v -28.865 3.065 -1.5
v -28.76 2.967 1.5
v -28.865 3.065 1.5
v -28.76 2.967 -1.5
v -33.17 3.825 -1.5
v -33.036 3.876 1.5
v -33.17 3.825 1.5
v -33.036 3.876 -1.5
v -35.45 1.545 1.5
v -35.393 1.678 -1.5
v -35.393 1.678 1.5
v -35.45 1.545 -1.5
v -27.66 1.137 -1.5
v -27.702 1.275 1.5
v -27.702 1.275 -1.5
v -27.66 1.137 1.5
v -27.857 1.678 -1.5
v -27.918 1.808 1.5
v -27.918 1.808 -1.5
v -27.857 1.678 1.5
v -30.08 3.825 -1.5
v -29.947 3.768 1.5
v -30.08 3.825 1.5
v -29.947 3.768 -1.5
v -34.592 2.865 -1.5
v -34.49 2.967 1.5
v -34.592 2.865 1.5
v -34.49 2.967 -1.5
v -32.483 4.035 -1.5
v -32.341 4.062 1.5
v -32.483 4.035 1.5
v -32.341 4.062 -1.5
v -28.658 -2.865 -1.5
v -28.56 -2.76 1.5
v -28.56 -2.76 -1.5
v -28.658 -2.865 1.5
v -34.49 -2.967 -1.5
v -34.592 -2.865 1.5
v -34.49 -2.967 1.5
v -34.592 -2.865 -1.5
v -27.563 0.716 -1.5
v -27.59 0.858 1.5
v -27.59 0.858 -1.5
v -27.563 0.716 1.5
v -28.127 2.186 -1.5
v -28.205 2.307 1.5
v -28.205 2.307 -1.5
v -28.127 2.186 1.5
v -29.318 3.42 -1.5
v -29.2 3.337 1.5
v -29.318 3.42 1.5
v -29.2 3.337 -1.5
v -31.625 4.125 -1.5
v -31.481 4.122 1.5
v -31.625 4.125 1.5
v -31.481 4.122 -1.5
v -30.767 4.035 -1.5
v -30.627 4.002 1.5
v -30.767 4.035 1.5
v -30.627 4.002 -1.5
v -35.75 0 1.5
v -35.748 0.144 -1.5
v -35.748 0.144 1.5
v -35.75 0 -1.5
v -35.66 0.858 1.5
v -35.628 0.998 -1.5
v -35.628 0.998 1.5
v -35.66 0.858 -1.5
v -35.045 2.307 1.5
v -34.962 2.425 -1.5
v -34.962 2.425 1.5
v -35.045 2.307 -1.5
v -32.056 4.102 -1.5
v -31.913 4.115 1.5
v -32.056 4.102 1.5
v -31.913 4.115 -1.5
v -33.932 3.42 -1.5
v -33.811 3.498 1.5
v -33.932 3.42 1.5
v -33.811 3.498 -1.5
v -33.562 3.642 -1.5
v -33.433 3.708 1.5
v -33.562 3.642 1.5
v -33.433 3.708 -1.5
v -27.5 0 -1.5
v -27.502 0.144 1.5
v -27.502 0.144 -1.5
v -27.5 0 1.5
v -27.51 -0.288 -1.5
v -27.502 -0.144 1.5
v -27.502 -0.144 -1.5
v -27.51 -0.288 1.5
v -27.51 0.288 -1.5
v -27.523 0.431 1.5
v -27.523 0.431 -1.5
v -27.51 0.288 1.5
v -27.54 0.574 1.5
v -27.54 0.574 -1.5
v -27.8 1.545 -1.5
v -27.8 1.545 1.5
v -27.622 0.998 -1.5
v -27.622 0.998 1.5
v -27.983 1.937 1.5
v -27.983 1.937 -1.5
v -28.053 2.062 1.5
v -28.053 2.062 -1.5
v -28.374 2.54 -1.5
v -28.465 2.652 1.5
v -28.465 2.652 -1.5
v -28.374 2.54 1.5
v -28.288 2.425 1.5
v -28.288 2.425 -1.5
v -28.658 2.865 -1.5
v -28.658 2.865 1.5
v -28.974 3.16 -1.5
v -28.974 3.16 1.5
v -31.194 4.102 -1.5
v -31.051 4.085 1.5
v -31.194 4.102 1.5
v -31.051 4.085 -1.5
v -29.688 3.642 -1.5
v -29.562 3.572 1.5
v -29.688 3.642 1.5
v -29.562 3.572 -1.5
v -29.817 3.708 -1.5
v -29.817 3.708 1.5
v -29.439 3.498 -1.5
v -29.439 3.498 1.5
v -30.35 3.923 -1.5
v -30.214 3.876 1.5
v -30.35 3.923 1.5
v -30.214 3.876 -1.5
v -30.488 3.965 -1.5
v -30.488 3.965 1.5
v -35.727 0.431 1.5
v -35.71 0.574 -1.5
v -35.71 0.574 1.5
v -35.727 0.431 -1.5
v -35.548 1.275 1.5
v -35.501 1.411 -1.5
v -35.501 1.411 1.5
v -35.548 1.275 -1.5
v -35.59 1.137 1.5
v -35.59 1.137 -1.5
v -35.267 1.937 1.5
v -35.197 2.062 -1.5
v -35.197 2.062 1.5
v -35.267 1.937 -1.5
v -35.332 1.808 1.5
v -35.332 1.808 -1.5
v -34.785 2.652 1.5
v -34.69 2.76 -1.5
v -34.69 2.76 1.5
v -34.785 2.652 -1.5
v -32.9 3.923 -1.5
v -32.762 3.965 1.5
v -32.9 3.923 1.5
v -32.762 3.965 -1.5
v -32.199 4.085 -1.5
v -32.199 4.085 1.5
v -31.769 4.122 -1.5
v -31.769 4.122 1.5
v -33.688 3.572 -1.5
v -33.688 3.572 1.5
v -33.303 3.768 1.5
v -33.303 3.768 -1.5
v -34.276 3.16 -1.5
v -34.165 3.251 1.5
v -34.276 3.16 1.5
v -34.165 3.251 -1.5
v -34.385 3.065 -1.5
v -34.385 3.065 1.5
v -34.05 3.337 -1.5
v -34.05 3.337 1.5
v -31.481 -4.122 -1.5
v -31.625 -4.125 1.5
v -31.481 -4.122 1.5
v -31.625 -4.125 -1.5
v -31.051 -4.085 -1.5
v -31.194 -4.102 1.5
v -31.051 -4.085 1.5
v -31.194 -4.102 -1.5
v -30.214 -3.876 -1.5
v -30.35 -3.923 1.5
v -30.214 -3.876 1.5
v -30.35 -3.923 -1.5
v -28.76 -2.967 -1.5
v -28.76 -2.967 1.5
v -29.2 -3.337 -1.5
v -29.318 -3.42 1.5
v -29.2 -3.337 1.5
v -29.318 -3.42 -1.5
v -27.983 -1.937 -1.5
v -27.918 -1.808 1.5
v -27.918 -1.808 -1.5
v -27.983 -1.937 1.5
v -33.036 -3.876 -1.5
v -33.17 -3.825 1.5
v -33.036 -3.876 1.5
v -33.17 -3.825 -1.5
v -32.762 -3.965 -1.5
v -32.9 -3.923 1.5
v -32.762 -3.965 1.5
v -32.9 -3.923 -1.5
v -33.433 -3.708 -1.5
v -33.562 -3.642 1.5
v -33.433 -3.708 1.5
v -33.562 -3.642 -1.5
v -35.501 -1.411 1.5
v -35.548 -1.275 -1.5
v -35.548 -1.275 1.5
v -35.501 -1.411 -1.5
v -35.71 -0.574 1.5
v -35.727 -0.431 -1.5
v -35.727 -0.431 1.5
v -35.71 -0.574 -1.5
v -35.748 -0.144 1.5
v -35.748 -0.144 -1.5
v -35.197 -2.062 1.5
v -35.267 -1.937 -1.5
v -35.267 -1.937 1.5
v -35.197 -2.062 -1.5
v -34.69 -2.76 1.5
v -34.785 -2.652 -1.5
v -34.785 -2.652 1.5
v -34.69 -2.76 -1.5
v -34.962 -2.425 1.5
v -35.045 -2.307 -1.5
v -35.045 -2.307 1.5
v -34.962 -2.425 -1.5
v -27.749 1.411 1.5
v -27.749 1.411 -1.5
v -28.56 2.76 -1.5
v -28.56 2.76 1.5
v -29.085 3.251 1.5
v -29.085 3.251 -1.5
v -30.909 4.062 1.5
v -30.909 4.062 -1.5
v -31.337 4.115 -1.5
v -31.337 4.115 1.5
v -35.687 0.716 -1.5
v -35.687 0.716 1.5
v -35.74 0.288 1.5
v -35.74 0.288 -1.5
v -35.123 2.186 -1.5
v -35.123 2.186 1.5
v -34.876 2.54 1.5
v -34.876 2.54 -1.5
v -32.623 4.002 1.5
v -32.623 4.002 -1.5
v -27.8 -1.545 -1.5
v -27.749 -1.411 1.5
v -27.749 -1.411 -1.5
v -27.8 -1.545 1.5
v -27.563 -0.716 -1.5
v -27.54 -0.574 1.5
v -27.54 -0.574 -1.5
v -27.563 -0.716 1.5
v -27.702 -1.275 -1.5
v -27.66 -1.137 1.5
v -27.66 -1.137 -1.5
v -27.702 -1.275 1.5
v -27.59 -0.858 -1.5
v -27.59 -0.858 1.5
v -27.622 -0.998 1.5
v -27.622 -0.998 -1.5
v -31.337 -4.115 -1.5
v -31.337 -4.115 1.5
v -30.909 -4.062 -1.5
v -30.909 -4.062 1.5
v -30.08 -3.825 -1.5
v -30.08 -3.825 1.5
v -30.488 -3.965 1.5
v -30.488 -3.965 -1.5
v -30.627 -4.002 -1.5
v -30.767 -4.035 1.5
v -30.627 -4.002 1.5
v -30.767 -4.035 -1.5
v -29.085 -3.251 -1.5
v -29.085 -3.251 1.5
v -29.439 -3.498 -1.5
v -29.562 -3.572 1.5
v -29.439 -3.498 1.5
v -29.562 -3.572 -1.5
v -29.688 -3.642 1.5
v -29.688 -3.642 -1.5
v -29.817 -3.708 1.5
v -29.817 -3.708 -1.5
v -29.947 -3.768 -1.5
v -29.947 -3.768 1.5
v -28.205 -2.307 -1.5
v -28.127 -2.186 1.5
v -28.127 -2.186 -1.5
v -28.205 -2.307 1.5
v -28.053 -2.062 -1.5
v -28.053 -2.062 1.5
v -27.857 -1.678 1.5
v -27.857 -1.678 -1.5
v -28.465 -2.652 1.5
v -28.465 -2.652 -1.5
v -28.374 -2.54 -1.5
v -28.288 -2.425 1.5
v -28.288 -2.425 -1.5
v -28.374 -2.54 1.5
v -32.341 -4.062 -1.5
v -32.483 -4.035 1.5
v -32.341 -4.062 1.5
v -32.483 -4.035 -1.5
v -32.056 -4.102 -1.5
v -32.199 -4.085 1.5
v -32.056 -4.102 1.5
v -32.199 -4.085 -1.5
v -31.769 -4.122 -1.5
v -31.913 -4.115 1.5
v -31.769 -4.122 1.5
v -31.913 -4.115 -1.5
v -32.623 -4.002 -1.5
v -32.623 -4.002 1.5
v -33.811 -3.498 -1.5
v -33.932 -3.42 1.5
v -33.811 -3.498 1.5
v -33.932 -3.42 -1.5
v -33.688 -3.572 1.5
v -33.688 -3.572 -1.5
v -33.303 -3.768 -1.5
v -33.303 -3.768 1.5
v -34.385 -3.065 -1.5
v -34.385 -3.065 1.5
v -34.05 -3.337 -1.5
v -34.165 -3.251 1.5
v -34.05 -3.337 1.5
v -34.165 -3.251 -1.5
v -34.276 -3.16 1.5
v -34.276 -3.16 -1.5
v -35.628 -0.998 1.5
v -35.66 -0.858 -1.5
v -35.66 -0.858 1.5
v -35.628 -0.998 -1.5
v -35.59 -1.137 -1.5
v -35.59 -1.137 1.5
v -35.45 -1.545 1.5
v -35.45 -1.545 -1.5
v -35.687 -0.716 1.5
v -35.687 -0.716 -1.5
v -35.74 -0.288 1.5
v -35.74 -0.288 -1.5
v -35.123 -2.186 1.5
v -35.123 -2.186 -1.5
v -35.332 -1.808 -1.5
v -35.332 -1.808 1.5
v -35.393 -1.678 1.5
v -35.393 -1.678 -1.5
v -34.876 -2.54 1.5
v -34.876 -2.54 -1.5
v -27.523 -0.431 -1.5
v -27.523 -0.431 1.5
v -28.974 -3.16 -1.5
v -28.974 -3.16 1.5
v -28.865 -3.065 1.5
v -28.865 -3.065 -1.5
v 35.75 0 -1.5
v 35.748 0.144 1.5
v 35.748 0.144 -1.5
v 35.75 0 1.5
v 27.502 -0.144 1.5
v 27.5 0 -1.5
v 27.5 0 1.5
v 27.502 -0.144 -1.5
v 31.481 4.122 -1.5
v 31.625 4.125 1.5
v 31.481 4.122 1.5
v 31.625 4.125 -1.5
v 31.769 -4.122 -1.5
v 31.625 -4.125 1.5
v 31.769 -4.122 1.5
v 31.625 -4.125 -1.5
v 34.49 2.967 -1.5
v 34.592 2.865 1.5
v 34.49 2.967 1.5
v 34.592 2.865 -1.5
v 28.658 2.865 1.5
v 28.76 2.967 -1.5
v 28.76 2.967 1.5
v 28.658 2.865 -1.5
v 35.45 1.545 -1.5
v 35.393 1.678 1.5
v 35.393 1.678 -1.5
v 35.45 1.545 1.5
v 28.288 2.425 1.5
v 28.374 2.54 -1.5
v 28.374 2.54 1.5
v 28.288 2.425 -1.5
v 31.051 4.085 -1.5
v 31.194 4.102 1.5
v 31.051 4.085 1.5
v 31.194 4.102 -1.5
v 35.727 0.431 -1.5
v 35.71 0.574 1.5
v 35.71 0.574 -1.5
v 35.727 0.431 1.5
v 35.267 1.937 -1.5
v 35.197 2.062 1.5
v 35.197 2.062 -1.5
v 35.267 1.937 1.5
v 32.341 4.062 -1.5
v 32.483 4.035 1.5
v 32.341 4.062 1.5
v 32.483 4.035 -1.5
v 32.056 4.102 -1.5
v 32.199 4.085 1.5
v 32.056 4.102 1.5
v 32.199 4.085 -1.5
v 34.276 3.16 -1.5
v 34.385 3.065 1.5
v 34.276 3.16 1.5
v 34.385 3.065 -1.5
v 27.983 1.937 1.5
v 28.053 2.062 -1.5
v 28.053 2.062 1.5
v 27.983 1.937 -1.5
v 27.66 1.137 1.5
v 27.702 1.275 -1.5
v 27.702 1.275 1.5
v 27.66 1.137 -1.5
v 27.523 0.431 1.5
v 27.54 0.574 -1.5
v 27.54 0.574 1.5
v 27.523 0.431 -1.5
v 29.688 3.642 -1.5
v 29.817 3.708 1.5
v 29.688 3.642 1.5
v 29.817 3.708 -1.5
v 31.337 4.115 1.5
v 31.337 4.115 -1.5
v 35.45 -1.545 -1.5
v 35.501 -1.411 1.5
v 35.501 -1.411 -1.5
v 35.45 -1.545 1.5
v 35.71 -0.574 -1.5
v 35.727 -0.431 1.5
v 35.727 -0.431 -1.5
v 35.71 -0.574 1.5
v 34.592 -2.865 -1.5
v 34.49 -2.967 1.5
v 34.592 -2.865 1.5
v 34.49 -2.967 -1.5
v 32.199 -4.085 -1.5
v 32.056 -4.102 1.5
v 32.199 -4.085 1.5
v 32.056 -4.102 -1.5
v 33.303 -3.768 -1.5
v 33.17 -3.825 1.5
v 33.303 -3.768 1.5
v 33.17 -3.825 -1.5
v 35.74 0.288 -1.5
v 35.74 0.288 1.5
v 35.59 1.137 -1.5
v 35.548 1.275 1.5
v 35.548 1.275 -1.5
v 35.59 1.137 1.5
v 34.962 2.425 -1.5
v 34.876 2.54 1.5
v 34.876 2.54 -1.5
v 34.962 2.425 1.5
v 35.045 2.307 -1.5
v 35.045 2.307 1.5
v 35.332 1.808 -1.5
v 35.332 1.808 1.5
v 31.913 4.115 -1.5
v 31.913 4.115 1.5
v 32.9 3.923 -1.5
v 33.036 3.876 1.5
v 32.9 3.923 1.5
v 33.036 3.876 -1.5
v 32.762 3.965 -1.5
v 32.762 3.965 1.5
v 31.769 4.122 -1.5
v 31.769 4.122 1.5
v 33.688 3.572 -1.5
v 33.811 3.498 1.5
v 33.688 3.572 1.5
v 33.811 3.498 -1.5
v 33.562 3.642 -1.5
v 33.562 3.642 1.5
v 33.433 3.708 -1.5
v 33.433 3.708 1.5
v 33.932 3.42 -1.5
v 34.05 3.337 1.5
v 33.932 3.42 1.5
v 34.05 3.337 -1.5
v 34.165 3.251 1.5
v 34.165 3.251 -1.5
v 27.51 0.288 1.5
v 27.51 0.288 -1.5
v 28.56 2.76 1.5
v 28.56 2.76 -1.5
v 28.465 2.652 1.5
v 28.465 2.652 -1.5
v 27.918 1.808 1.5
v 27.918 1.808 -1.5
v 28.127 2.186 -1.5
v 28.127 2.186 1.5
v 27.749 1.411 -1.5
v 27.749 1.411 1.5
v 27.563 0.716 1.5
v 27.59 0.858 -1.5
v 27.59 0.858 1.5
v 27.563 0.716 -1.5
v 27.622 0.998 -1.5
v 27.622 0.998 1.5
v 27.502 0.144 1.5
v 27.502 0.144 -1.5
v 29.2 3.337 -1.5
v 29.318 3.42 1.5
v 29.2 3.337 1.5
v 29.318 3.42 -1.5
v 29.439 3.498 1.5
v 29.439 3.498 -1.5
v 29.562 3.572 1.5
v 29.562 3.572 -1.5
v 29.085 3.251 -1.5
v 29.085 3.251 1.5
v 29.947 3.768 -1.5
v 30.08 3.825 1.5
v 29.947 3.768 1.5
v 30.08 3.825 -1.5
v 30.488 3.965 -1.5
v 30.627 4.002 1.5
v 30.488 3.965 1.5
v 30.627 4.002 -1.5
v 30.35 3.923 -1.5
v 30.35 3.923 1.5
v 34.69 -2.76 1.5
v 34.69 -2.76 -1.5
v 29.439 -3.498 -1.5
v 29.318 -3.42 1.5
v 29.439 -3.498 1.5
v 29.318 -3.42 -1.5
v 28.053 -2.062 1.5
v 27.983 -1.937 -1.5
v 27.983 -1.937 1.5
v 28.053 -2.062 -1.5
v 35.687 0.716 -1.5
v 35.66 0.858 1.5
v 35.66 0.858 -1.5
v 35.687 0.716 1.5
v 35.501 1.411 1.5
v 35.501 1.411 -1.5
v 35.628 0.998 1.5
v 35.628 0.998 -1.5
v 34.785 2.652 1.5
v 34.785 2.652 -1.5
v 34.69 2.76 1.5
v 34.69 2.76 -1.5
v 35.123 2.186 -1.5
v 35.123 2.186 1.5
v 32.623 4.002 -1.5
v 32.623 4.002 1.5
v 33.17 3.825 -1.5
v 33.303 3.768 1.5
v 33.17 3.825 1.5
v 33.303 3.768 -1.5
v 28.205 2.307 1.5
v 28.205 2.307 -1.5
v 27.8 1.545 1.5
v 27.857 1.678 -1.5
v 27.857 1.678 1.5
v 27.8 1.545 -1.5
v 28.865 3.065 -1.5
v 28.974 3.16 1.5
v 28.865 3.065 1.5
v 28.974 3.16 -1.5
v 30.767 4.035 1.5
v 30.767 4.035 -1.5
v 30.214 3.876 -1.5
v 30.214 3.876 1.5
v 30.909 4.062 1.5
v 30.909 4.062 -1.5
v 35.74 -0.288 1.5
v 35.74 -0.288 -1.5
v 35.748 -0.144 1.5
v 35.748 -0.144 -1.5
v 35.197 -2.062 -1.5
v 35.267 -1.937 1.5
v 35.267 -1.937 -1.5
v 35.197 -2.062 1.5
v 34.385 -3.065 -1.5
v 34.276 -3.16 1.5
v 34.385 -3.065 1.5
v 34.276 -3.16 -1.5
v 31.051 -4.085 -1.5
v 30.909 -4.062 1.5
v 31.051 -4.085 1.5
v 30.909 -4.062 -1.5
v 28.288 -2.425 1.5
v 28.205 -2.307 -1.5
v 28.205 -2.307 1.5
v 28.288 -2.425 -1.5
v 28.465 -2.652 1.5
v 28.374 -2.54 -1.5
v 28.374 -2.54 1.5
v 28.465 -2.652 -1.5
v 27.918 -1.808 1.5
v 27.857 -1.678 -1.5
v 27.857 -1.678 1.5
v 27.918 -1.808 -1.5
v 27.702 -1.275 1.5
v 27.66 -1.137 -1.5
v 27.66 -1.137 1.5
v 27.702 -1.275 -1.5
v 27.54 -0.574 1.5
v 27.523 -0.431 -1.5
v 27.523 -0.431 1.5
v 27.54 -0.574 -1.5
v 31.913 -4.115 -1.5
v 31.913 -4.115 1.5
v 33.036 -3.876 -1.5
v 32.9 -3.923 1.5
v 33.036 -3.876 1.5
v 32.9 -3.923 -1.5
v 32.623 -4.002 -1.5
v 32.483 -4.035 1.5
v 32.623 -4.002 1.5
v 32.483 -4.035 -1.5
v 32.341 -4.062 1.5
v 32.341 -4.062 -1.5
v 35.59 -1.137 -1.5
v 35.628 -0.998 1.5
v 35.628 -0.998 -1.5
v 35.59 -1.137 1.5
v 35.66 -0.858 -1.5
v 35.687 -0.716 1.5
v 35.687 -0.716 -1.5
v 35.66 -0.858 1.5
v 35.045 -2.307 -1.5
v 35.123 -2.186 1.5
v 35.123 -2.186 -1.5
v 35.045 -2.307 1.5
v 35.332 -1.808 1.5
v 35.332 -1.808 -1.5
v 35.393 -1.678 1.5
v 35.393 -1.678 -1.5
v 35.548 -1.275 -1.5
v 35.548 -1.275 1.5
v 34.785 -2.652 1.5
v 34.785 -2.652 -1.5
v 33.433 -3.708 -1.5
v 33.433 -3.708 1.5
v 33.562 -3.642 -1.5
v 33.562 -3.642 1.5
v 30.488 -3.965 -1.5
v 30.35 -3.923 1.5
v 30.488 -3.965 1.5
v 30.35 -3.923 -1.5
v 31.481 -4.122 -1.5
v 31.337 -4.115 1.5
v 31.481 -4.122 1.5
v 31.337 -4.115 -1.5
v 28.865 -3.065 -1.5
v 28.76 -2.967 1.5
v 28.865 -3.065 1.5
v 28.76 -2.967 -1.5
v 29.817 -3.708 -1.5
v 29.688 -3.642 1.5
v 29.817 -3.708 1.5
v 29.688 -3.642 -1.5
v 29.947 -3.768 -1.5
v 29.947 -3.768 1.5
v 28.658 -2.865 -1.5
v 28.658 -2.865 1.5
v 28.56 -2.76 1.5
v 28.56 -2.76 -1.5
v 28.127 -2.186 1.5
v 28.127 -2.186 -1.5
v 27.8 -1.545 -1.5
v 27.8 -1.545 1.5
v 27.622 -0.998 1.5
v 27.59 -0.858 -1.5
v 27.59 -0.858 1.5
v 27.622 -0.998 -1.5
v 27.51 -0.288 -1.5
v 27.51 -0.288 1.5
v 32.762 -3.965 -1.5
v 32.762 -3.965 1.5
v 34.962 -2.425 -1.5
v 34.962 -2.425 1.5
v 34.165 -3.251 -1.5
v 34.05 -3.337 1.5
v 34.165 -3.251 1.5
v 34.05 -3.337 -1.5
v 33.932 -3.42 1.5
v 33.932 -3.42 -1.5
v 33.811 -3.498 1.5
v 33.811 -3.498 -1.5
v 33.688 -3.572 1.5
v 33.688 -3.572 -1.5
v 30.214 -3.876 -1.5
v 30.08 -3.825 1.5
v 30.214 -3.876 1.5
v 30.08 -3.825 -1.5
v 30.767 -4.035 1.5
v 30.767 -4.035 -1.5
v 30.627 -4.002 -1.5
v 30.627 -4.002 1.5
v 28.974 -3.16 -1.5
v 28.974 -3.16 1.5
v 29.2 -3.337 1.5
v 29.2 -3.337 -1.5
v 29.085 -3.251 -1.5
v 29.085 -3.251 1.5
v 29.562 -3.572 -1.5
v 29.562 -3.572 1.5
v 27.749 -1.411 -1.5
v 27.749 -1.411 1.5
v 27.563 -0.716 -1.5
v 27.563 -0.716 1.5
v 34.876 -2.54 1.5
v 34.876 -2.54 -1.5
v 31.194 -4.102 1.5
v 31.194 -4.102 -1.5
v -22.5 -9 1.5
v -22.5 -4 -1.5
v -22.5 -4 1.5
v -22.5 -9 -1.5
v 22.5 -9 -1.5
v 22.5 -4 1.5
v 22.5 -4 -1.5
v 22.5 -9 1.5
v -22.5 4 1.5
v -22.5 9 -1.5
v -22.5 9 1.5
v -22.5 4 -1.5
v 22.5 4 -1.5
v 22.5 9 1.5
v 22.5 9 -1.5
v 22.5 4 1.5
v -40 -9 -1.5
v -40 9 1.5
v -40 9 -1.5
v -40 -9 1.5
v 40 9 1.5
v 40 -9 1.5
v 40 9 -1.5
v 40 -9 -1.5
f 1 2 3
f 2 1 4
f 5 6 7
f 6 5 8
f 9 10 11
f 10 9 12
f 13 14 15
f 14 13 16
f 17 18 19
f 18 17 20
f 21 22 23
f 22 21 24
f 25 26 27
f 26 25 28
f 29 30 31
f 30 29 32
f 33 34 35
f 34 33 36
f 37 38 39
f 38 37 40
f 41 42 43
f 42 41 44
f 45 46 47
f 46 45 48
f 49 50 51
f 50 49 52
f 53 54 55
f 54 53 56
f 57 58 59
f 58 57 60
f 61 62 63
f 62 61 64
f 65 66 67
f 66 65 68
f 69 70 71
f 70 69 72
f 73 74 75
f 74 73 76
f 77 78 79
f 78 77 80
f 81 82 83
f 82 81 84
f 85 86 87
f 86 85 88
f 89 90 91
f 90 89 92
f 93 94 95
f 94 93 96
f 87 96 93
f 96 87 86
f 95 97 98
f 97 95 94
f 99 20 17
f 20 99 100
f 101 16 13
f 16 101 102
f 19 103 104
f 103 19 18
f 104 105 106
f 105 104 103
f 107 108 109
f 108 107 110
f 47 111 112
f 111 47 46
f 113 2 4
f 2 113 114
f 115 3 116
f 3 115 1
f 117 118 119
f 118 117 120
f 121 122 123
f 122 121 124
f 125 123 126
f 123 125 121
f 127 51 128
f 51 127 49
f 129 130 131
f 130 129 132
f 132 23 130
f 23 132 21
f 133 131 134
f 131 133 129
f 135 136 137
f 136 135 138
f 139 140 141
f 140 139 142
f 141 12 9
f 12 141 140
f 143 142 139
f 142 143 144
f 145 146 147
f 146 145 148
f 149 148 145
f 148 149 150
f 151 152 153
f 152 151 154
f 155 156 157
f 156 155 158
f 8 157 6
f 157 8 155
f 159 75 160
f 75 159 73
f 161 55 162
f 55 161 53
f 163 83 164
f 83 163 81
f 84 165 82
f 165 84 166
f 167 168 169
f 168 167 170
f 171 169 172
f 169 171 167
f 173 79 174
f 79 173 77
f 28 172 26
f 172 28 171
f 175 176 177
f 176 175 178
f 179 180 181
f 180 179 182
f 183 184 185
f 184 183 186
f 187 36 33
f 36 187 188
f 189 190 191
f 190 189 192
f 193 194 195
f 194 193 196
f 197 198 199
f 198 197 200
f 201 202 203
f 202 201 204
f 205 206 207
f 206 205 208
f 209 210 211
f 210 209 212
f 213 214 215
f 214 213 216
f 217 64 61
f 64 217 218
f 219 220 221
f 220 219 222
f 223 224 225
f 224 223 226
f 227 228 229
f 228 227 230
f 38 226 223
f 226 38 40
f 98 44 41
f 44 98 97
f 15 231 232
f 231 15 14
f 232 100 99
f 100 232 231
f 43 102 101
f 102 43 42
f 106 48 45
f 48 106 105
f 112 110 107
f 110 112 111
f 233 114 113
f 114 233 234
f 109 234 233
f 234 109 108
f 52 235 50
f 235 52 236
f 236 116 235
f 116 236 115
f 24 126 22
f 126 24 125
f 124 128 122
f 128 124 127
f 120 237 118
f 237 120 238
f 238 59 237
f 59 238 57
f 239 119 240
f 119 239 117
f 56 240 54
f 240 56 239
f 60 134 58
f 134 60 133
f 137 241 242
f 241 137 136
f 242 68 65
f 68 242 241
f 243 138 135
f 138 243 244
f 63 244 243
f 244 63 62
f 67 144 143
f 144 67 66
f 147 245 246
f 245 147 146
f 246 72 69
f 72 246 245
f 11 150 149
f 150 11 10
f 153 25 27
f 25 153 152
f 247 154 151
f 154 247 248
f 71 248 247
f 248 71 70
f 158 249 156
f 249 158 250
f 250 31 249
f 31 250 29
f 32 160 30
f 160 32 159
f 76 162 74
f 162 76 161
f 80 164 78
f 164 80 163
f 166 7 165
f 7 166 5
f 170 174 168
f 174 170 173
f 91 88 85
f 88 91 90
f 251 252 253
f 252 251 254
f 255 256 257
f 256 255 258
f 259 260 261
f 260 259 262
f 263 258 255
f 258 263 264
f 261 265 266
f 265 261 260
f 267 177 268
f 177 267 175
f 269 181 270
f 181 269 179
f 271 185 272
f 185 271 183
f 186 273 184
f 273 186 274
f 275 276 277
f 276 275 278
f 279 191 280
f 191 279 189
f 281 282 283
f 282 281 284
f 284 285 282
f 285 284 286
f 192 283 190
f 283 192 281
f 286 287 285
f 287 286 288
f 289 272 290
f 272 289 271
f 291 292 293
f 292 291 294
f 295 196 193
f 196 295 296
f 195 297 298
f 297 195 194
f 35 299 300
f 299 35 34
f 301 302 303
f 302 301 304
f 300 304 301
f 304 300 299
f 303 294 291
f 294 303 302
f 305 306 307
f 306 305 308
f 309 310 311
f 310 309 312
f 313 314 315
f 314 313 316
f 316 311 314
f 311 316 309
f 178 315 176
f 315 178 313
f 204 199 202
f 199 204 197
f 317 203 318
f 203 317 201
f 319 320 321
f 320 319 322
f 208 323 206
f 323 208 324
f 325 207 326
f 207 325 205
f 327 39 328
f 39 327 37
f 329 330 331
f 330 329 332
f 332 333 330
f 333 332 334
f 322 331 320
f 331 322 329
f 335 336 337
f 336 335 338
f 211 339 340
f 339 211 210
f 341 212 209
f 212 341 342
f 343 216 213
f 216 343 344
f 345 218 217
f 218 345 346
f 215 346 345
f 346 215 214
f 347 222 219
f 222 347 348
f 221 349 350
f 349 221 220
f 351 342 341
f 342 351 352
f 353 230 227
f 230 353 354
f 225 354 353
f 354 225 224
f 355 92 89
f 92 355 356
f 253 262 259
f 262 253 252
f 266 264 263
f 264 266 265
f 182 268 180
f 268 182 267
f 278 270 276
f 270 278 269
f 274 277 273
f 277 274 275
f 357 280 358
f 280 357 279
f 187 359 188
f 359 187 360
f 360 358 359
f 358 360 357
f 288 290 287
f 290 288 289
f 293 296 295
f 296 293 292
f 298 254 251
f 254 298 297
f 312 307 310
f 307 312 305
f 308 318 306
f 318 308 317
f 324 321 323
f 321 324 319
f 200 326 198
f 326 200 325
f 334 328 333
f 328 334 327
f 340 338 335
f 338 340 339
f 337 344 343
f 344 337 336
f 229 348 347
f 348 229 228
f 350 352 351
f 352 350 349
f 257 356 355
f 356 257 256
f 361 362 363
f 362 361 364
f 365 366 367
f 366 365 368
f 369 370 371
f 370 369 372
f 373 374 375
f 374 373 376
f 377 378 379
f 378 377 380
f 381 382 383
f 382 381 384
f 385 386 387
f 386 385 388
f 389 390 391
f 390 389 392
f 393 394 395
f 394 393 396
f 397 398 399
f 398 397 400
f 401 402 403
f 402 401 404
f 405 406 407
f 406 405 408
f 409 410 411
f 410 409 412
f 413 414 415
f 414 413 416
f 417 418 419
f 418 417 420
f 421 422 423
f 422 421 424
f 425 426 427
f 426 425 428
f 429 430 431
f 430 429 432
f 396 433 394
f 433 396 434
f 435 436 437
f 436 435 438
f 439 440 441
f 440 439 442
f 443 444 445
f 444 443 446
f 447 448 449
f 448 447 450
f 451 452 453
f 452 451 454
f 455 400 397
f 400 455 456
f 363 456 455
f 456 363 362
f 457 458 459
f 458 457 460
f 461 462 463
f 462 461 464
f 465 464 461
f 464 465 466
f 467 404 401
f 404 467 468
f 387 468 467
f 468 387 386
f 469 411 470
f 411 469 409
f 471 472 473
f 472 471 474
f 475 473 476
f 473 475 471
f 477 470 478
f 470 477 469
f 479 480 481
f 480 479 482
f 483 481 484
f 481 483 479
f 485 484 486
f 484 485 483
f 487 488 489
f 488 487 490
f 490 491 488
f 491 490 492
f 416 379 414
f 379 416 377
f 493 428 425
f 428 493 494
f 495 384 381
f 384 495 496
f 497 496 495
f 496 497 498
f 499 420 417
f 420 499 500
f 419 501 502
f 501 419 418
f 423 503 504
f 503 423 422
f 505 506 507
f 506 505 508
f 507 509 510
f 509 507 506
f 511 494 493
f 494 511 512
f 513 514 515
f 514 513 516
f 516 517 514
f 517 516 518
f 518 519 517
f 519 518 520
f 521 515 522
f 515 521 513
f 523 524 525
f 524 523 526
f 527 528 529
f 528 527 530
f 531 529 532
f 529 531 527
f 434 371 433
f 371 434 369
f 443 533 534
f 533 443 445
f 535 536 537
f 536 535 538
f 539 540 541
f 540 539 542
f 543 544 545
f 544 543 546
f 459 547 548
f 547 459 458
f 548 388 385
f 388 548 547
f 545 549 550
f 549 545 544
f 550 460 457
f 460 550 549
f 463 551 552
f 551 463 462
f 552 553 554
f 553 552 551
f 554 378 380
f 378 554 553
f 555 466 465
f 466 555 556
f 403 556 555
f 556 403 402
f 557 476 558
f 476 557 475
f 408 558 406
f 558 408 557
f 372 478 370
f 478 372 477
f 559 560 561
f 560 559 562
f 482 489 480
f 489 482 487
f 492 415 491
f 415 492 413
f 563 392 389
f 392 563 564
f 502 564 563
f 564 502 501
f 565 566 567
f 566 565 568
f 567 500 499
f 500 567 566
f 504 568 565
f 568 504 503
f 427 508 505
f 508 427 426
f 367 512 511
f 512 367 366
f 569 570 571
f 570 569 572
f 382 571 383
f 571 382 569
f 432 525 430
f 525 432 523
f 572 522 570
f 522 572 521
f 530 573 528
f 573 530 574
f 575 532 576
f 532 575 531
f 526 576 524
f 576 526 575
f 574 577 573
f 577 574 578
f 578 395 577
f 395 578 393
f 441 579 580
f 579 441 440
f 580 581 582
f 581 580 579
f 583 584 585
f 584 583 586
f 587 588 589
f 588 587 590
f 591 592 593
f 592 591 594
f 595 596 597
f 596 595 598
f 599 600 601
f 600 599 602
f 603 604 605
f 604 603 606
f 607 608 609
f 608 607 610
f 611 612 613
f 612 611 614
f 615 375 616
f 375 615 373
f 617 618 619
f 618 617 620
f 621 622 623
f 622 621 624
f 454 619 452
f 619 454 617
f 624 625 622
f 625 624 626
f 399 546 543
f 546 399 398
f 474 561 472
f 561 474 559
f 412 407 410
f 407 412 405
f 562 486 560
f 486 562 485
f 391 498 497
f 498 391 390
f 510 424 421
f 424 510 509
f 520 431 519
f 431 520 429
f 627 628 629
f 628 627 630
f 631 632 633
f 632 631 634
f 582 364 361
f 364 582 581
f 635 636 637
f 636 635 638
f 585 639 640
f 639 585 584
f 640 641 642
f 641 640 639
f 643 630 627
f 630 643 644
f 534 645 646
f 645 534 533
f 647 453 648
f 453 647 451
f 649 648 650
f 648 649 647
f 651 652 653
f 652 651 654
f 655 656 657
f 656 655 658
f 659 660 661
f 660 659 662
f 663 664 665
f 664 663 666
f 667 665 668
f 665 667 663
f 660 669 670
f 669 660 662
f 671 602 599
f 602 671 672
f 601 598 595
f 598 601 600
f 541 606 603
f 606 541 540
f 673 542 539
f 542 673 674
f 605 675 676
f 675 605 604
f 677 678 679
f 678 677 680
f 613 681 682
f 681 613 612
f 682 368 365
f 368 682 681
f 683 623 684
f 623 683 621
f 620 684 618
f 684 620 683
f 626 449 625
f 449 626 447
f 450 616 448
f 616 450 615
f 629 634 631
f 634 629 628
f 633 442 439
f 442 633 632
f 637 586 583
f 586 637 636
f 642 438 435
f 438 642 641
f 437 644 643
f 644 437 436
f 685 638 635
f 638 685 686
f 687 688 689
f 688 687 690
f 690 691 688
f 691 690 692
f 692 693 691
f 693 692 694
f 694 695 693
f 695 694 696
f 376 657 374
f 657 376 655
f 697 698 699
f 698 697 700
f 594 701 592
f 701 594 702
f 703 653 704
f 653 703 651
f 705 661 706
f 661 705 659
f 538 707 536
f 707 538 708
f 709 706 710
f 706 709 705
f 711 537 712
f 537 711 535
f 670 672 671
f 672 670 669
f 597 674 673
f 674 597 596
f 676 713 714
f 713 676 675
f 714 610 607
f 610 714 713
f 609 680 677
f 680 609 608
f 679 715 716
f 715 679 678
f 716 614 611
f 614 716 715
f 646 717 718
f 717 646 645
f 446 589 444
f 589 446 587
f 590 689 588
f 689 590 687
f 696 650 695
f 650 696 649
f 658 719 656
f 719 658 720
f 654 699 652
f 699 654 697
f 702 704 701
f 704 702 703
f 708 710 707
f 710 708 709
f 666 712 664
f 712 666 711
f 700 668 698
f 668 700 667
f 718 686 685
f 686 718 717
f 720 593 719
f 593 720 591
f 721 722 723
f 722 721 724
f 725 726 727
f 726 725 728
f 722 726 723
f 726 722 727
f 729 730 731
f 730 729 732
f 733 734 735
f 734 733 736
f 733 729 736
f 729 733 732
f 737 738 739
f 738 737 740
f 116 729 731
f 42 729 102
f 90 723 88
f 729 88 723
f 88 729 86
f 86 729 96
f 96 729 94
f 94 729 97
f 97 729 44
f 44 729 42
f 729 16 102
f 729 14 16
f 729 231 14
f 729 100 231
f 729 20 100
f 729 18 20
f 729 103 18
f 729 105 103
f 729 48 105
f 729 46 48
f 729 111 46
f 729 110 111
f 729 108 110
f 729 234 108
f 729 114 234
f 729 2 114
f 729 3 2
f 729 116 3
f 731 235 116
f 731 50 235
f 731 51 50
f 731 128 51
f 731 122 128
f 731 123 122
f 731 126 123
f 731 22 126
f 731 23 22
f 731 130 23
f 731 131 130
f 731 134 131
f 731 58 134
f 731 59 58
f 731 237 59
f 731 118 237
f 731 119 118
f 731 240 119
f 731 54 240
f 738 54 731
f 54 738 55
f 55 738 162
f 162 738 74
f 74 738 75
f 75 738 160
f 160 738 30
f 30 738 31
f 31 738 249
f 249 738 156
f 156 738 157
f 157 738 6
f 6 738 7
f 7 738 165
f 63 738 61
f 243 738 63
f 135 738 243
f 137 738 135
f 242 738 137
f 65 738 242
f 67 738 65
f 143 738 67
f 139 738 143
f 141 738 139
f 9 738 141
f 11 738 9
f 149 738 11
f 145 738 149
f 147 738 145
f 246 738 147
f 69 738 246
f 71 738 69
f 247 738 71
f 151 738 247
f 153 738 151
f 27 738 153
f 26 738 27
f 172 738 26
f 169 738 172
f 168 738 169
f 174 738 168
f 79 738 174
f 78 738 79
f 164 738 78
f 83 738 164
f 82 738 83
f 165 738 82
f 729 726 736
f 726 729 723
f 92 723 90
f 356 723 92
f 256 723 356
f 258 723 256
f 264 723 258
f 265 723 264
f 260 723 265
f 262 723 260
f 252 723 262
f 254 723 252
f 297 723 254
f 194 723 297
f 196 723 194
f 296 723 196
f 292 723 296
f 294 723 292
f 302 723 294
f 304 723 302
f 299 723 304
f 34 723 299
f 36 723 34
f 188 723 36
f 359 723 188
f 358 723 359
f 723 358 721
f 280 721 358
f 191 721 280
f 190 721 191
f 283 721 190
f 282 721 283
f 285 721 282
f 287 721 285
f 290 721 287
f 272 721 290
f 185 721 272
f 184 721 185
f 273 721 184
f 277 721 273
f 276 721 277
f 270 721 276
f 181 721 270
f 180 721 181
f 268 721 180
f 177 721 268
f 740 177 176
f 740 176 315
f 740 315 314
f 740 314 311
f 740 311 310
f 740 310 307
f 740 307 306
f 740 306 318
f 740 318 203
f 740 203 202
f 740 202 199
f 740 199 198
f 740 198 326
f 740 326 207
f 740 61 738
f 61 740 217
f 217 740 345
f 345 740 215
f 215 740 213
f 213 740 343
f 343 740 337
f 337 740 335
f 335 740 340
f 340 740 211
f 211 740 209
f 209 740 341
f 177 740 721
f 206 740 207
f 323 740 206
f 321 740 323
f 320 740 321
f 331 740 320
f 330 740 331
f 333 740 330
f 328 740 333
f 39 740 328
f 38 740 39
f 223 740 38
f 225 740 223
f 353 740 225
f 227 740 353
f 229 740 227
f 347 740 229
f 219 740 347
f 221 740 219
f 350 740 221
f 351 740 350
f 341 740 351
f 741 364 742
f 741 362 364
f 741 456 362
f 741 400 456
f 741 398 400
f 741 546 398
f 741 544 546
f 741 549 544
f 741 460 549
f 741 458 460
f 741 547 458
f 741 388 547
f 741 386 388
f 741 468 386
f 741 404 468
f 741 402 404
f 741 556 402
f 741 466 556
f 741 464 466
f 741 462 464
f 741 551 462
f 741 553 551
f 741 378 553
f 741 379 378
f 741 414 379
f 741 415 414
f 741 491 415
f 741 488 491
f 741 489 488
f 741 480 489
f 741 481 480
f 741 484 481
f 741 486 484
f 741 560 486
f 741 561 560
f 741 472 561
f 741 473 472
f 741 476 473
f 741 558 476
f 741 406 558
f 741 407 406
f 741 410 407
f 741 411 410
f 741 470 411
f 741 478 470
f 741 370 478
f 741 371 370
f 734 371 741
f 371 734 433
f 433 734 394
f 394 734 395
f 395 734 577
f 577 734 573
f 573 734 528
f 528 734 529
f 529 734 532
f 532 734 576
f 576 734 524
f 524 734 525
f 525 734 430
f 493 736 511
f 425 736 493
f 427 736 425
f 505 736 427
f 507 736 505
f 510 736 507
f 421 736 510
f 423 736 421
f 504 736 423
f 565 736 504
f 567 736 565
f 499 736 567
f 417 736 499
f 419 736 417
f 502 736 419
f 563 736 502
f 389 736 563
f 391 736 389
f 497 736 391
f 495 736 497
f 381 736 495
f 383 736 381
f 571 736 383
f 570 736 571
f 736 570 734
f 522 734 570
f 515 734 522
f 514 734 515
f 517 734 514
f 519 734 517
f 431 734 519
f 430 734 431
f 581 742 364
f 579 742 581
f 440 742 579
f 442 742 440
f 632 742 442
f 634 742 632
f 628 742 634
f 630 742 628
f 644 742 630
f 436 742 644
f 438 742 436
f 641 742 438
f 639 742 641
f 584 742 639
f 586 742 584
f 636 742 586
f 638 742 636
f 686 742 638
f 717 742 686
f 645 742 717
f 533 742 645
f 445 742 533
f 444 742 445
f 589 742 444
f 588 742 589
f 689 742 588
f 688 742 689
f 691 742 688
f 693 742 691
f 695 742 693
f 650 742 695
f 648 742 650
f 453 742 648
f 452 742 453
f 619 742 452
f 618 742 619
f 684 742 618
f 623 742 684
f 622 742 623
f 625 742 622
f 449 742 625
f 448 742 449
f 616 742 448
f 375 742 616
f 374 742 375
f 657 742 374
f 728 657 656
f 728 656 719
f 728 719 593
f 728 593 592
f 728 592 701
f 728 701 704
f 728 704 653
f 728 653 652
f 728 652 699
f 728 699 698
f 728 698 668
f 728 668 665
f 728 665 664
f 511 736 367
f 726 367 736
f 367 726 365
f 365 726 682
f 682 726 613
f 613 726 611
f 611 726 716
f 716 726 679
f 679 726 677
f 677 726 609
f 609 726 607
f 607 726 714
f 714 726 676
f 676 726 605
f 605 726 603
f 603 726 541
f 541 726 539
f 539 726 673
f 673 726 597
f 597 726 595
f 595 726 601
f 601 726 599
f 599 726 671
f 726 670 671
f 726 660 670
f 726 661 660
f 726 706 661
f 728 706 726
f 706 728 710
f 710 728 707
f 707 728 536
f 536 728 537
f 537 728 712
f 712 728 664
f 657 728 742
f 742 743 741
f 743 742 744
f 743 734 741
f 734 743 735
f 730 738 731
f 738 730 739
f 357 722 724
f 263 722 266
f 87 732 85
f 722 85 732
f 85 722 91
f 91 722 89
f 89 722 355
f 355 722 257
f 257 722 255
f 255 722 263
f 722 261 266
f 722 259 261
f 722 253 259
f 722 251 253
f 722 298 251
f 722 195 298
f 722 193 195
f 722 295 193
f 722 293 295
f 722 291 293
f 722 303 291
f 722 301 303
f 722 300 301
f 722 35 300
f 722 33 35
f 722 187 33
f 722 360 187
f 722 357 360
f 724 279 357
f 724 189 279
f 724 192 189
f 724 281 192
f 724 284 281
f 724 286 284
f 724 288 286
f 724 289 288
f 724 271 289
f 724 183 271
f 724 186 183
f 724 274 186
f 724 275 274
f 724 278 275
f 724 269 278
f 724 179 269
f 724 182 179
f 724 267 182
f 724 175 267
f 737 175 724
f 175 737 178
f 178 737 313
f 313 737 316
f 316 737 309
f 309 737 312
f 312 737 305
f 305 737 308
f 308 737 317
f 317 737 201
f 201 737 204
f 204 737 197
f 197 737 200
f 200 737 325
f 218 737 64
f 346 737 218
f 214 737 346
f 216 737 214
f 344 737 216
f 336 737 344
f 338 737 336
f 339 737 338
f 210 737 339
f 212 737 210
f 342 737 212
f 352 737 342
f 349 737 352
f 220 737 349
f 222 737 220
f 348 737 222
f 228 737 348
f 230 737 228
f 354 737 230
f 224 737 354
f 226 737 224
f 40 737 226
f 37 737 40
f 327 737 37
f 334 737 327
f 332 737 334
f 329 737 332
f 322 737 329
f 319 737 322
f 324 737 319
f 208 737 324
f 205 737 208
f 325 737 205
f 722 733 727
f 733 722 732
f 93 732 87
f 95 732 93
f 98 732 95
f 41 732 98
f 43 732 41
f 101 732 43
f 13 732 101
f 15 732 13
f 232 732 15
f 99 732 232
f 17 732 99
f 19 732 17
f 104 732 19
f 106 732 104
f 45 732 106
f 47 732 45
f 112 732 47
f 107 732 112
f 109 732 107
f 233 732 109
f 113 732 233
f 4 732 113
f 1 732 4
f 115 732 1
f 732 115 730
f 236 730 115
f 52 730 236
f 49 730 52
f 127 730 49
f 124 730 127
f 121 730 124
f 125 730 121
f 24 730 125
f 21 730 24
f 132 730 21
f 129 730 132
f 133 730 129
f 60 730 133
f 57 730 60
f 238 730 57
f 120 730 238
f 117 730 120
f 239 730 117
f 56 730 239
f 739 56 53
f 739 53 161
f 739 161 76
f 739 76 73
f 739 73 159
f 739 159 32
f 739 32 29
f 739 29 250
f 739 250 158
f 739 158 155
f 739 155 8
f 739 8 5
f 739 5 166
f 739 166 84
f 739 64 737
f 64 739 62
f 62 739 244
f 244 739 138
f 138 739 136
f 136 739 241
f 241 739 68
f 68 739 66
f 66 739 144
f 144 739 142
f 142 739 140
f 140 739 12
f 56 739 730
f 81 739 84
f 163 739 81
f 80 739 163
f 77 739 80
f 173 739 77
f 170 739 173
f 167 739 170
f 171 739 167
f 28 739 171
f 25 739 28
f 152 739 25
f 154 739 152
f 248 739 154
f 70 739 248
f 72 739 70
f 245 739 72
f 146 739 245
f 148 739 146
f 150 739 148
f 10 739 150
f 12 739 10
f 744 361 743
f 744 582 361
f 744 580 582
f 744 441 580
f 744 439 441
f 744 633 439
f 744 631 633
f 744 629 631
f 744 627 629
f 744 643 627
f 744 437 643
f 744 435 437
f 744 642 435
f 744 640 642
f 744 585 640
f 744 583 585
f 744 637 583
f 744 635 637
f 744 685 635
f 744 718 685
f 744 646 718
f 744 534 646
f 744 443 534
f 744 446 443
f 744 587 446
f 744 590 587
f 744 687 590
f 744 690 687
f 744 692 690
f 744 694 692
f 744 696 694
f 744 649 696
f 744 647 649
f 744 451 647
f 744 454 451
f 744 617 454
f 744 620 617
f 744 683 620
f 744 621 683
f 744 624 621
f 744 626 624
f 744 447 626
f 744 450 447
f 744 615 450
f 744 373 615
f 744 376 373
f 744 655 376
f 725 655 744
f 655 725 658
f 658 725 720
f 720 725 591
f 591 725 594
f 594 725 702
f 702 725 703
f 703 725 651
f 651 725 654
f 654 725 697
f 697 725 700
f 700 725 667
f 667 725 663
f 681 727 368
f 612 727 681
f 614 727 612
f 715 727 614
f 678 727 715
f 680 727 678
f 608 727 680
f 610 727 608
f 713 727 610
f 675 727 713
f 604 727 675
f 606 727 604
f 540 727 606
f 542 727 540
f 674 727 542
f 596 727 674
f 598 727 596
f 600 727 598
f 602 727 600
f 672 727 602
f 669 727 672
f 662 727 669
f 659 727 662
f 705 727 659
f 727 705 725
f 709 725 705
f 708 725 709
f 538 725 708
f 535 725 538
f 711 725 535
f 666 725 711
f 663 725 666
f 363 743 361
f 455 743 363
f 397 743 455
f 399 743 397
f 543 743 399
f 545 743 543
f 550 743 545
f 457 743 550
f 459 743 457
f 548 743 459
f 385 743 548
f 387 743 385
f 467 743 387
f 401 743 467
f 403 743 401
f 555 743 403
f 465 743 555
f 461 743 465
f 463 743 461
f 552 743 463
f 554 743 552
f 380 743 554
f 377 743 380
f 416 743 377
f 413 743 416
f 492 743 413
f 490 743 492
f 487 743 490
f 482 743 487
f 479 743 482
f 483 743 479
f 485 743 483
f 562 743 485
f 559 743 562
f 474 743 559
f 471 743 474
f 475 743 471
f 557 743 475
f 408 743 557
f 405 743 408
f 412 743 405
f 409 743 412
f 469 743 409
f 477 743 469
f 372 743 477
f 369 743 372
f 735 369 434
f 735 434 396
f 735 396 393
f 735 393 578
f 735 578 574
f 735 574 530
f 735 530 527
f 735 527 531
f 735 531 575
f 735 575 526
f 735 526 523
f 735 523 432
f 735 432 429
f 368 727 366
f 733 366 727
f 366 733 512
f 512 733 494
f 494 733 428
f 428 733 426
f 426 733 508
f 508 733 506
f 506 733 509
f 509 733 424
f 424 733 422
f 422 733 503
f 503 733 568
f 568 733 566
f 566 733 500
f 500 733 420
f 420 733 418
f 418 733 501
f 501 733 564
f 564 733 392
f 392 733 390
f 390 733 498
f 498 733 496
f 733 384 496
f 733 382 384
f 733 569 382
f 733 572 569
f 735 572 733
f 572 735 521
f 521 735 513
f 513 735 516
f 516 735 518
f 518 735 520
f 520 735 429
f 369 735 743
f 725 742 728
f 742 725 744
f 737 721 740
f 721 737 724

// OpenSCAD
//cube([120,120,3], center = true);
//translate([-45,-45,0])cylinder(h = 3, r=15, $fn = 180, center = true);
//rotate_extrude(convexity = 10, $fn = A) translate([20+1.5, 0, 0])circle(d = 3, $fn = B);
//module Test(){


//V.2 0.25mm added to hole distance (tolerance)


difference(){
cube([80,18,3], center = true);

for(i=[-1,1])translate([i*63.25/2,0,0])cylinder(h = 5, d=8.25, $fn = 180, center = true);
    
for(i=[-1,1])translate([0,i*10,0]) cube([45,12,4], center = true);
}
